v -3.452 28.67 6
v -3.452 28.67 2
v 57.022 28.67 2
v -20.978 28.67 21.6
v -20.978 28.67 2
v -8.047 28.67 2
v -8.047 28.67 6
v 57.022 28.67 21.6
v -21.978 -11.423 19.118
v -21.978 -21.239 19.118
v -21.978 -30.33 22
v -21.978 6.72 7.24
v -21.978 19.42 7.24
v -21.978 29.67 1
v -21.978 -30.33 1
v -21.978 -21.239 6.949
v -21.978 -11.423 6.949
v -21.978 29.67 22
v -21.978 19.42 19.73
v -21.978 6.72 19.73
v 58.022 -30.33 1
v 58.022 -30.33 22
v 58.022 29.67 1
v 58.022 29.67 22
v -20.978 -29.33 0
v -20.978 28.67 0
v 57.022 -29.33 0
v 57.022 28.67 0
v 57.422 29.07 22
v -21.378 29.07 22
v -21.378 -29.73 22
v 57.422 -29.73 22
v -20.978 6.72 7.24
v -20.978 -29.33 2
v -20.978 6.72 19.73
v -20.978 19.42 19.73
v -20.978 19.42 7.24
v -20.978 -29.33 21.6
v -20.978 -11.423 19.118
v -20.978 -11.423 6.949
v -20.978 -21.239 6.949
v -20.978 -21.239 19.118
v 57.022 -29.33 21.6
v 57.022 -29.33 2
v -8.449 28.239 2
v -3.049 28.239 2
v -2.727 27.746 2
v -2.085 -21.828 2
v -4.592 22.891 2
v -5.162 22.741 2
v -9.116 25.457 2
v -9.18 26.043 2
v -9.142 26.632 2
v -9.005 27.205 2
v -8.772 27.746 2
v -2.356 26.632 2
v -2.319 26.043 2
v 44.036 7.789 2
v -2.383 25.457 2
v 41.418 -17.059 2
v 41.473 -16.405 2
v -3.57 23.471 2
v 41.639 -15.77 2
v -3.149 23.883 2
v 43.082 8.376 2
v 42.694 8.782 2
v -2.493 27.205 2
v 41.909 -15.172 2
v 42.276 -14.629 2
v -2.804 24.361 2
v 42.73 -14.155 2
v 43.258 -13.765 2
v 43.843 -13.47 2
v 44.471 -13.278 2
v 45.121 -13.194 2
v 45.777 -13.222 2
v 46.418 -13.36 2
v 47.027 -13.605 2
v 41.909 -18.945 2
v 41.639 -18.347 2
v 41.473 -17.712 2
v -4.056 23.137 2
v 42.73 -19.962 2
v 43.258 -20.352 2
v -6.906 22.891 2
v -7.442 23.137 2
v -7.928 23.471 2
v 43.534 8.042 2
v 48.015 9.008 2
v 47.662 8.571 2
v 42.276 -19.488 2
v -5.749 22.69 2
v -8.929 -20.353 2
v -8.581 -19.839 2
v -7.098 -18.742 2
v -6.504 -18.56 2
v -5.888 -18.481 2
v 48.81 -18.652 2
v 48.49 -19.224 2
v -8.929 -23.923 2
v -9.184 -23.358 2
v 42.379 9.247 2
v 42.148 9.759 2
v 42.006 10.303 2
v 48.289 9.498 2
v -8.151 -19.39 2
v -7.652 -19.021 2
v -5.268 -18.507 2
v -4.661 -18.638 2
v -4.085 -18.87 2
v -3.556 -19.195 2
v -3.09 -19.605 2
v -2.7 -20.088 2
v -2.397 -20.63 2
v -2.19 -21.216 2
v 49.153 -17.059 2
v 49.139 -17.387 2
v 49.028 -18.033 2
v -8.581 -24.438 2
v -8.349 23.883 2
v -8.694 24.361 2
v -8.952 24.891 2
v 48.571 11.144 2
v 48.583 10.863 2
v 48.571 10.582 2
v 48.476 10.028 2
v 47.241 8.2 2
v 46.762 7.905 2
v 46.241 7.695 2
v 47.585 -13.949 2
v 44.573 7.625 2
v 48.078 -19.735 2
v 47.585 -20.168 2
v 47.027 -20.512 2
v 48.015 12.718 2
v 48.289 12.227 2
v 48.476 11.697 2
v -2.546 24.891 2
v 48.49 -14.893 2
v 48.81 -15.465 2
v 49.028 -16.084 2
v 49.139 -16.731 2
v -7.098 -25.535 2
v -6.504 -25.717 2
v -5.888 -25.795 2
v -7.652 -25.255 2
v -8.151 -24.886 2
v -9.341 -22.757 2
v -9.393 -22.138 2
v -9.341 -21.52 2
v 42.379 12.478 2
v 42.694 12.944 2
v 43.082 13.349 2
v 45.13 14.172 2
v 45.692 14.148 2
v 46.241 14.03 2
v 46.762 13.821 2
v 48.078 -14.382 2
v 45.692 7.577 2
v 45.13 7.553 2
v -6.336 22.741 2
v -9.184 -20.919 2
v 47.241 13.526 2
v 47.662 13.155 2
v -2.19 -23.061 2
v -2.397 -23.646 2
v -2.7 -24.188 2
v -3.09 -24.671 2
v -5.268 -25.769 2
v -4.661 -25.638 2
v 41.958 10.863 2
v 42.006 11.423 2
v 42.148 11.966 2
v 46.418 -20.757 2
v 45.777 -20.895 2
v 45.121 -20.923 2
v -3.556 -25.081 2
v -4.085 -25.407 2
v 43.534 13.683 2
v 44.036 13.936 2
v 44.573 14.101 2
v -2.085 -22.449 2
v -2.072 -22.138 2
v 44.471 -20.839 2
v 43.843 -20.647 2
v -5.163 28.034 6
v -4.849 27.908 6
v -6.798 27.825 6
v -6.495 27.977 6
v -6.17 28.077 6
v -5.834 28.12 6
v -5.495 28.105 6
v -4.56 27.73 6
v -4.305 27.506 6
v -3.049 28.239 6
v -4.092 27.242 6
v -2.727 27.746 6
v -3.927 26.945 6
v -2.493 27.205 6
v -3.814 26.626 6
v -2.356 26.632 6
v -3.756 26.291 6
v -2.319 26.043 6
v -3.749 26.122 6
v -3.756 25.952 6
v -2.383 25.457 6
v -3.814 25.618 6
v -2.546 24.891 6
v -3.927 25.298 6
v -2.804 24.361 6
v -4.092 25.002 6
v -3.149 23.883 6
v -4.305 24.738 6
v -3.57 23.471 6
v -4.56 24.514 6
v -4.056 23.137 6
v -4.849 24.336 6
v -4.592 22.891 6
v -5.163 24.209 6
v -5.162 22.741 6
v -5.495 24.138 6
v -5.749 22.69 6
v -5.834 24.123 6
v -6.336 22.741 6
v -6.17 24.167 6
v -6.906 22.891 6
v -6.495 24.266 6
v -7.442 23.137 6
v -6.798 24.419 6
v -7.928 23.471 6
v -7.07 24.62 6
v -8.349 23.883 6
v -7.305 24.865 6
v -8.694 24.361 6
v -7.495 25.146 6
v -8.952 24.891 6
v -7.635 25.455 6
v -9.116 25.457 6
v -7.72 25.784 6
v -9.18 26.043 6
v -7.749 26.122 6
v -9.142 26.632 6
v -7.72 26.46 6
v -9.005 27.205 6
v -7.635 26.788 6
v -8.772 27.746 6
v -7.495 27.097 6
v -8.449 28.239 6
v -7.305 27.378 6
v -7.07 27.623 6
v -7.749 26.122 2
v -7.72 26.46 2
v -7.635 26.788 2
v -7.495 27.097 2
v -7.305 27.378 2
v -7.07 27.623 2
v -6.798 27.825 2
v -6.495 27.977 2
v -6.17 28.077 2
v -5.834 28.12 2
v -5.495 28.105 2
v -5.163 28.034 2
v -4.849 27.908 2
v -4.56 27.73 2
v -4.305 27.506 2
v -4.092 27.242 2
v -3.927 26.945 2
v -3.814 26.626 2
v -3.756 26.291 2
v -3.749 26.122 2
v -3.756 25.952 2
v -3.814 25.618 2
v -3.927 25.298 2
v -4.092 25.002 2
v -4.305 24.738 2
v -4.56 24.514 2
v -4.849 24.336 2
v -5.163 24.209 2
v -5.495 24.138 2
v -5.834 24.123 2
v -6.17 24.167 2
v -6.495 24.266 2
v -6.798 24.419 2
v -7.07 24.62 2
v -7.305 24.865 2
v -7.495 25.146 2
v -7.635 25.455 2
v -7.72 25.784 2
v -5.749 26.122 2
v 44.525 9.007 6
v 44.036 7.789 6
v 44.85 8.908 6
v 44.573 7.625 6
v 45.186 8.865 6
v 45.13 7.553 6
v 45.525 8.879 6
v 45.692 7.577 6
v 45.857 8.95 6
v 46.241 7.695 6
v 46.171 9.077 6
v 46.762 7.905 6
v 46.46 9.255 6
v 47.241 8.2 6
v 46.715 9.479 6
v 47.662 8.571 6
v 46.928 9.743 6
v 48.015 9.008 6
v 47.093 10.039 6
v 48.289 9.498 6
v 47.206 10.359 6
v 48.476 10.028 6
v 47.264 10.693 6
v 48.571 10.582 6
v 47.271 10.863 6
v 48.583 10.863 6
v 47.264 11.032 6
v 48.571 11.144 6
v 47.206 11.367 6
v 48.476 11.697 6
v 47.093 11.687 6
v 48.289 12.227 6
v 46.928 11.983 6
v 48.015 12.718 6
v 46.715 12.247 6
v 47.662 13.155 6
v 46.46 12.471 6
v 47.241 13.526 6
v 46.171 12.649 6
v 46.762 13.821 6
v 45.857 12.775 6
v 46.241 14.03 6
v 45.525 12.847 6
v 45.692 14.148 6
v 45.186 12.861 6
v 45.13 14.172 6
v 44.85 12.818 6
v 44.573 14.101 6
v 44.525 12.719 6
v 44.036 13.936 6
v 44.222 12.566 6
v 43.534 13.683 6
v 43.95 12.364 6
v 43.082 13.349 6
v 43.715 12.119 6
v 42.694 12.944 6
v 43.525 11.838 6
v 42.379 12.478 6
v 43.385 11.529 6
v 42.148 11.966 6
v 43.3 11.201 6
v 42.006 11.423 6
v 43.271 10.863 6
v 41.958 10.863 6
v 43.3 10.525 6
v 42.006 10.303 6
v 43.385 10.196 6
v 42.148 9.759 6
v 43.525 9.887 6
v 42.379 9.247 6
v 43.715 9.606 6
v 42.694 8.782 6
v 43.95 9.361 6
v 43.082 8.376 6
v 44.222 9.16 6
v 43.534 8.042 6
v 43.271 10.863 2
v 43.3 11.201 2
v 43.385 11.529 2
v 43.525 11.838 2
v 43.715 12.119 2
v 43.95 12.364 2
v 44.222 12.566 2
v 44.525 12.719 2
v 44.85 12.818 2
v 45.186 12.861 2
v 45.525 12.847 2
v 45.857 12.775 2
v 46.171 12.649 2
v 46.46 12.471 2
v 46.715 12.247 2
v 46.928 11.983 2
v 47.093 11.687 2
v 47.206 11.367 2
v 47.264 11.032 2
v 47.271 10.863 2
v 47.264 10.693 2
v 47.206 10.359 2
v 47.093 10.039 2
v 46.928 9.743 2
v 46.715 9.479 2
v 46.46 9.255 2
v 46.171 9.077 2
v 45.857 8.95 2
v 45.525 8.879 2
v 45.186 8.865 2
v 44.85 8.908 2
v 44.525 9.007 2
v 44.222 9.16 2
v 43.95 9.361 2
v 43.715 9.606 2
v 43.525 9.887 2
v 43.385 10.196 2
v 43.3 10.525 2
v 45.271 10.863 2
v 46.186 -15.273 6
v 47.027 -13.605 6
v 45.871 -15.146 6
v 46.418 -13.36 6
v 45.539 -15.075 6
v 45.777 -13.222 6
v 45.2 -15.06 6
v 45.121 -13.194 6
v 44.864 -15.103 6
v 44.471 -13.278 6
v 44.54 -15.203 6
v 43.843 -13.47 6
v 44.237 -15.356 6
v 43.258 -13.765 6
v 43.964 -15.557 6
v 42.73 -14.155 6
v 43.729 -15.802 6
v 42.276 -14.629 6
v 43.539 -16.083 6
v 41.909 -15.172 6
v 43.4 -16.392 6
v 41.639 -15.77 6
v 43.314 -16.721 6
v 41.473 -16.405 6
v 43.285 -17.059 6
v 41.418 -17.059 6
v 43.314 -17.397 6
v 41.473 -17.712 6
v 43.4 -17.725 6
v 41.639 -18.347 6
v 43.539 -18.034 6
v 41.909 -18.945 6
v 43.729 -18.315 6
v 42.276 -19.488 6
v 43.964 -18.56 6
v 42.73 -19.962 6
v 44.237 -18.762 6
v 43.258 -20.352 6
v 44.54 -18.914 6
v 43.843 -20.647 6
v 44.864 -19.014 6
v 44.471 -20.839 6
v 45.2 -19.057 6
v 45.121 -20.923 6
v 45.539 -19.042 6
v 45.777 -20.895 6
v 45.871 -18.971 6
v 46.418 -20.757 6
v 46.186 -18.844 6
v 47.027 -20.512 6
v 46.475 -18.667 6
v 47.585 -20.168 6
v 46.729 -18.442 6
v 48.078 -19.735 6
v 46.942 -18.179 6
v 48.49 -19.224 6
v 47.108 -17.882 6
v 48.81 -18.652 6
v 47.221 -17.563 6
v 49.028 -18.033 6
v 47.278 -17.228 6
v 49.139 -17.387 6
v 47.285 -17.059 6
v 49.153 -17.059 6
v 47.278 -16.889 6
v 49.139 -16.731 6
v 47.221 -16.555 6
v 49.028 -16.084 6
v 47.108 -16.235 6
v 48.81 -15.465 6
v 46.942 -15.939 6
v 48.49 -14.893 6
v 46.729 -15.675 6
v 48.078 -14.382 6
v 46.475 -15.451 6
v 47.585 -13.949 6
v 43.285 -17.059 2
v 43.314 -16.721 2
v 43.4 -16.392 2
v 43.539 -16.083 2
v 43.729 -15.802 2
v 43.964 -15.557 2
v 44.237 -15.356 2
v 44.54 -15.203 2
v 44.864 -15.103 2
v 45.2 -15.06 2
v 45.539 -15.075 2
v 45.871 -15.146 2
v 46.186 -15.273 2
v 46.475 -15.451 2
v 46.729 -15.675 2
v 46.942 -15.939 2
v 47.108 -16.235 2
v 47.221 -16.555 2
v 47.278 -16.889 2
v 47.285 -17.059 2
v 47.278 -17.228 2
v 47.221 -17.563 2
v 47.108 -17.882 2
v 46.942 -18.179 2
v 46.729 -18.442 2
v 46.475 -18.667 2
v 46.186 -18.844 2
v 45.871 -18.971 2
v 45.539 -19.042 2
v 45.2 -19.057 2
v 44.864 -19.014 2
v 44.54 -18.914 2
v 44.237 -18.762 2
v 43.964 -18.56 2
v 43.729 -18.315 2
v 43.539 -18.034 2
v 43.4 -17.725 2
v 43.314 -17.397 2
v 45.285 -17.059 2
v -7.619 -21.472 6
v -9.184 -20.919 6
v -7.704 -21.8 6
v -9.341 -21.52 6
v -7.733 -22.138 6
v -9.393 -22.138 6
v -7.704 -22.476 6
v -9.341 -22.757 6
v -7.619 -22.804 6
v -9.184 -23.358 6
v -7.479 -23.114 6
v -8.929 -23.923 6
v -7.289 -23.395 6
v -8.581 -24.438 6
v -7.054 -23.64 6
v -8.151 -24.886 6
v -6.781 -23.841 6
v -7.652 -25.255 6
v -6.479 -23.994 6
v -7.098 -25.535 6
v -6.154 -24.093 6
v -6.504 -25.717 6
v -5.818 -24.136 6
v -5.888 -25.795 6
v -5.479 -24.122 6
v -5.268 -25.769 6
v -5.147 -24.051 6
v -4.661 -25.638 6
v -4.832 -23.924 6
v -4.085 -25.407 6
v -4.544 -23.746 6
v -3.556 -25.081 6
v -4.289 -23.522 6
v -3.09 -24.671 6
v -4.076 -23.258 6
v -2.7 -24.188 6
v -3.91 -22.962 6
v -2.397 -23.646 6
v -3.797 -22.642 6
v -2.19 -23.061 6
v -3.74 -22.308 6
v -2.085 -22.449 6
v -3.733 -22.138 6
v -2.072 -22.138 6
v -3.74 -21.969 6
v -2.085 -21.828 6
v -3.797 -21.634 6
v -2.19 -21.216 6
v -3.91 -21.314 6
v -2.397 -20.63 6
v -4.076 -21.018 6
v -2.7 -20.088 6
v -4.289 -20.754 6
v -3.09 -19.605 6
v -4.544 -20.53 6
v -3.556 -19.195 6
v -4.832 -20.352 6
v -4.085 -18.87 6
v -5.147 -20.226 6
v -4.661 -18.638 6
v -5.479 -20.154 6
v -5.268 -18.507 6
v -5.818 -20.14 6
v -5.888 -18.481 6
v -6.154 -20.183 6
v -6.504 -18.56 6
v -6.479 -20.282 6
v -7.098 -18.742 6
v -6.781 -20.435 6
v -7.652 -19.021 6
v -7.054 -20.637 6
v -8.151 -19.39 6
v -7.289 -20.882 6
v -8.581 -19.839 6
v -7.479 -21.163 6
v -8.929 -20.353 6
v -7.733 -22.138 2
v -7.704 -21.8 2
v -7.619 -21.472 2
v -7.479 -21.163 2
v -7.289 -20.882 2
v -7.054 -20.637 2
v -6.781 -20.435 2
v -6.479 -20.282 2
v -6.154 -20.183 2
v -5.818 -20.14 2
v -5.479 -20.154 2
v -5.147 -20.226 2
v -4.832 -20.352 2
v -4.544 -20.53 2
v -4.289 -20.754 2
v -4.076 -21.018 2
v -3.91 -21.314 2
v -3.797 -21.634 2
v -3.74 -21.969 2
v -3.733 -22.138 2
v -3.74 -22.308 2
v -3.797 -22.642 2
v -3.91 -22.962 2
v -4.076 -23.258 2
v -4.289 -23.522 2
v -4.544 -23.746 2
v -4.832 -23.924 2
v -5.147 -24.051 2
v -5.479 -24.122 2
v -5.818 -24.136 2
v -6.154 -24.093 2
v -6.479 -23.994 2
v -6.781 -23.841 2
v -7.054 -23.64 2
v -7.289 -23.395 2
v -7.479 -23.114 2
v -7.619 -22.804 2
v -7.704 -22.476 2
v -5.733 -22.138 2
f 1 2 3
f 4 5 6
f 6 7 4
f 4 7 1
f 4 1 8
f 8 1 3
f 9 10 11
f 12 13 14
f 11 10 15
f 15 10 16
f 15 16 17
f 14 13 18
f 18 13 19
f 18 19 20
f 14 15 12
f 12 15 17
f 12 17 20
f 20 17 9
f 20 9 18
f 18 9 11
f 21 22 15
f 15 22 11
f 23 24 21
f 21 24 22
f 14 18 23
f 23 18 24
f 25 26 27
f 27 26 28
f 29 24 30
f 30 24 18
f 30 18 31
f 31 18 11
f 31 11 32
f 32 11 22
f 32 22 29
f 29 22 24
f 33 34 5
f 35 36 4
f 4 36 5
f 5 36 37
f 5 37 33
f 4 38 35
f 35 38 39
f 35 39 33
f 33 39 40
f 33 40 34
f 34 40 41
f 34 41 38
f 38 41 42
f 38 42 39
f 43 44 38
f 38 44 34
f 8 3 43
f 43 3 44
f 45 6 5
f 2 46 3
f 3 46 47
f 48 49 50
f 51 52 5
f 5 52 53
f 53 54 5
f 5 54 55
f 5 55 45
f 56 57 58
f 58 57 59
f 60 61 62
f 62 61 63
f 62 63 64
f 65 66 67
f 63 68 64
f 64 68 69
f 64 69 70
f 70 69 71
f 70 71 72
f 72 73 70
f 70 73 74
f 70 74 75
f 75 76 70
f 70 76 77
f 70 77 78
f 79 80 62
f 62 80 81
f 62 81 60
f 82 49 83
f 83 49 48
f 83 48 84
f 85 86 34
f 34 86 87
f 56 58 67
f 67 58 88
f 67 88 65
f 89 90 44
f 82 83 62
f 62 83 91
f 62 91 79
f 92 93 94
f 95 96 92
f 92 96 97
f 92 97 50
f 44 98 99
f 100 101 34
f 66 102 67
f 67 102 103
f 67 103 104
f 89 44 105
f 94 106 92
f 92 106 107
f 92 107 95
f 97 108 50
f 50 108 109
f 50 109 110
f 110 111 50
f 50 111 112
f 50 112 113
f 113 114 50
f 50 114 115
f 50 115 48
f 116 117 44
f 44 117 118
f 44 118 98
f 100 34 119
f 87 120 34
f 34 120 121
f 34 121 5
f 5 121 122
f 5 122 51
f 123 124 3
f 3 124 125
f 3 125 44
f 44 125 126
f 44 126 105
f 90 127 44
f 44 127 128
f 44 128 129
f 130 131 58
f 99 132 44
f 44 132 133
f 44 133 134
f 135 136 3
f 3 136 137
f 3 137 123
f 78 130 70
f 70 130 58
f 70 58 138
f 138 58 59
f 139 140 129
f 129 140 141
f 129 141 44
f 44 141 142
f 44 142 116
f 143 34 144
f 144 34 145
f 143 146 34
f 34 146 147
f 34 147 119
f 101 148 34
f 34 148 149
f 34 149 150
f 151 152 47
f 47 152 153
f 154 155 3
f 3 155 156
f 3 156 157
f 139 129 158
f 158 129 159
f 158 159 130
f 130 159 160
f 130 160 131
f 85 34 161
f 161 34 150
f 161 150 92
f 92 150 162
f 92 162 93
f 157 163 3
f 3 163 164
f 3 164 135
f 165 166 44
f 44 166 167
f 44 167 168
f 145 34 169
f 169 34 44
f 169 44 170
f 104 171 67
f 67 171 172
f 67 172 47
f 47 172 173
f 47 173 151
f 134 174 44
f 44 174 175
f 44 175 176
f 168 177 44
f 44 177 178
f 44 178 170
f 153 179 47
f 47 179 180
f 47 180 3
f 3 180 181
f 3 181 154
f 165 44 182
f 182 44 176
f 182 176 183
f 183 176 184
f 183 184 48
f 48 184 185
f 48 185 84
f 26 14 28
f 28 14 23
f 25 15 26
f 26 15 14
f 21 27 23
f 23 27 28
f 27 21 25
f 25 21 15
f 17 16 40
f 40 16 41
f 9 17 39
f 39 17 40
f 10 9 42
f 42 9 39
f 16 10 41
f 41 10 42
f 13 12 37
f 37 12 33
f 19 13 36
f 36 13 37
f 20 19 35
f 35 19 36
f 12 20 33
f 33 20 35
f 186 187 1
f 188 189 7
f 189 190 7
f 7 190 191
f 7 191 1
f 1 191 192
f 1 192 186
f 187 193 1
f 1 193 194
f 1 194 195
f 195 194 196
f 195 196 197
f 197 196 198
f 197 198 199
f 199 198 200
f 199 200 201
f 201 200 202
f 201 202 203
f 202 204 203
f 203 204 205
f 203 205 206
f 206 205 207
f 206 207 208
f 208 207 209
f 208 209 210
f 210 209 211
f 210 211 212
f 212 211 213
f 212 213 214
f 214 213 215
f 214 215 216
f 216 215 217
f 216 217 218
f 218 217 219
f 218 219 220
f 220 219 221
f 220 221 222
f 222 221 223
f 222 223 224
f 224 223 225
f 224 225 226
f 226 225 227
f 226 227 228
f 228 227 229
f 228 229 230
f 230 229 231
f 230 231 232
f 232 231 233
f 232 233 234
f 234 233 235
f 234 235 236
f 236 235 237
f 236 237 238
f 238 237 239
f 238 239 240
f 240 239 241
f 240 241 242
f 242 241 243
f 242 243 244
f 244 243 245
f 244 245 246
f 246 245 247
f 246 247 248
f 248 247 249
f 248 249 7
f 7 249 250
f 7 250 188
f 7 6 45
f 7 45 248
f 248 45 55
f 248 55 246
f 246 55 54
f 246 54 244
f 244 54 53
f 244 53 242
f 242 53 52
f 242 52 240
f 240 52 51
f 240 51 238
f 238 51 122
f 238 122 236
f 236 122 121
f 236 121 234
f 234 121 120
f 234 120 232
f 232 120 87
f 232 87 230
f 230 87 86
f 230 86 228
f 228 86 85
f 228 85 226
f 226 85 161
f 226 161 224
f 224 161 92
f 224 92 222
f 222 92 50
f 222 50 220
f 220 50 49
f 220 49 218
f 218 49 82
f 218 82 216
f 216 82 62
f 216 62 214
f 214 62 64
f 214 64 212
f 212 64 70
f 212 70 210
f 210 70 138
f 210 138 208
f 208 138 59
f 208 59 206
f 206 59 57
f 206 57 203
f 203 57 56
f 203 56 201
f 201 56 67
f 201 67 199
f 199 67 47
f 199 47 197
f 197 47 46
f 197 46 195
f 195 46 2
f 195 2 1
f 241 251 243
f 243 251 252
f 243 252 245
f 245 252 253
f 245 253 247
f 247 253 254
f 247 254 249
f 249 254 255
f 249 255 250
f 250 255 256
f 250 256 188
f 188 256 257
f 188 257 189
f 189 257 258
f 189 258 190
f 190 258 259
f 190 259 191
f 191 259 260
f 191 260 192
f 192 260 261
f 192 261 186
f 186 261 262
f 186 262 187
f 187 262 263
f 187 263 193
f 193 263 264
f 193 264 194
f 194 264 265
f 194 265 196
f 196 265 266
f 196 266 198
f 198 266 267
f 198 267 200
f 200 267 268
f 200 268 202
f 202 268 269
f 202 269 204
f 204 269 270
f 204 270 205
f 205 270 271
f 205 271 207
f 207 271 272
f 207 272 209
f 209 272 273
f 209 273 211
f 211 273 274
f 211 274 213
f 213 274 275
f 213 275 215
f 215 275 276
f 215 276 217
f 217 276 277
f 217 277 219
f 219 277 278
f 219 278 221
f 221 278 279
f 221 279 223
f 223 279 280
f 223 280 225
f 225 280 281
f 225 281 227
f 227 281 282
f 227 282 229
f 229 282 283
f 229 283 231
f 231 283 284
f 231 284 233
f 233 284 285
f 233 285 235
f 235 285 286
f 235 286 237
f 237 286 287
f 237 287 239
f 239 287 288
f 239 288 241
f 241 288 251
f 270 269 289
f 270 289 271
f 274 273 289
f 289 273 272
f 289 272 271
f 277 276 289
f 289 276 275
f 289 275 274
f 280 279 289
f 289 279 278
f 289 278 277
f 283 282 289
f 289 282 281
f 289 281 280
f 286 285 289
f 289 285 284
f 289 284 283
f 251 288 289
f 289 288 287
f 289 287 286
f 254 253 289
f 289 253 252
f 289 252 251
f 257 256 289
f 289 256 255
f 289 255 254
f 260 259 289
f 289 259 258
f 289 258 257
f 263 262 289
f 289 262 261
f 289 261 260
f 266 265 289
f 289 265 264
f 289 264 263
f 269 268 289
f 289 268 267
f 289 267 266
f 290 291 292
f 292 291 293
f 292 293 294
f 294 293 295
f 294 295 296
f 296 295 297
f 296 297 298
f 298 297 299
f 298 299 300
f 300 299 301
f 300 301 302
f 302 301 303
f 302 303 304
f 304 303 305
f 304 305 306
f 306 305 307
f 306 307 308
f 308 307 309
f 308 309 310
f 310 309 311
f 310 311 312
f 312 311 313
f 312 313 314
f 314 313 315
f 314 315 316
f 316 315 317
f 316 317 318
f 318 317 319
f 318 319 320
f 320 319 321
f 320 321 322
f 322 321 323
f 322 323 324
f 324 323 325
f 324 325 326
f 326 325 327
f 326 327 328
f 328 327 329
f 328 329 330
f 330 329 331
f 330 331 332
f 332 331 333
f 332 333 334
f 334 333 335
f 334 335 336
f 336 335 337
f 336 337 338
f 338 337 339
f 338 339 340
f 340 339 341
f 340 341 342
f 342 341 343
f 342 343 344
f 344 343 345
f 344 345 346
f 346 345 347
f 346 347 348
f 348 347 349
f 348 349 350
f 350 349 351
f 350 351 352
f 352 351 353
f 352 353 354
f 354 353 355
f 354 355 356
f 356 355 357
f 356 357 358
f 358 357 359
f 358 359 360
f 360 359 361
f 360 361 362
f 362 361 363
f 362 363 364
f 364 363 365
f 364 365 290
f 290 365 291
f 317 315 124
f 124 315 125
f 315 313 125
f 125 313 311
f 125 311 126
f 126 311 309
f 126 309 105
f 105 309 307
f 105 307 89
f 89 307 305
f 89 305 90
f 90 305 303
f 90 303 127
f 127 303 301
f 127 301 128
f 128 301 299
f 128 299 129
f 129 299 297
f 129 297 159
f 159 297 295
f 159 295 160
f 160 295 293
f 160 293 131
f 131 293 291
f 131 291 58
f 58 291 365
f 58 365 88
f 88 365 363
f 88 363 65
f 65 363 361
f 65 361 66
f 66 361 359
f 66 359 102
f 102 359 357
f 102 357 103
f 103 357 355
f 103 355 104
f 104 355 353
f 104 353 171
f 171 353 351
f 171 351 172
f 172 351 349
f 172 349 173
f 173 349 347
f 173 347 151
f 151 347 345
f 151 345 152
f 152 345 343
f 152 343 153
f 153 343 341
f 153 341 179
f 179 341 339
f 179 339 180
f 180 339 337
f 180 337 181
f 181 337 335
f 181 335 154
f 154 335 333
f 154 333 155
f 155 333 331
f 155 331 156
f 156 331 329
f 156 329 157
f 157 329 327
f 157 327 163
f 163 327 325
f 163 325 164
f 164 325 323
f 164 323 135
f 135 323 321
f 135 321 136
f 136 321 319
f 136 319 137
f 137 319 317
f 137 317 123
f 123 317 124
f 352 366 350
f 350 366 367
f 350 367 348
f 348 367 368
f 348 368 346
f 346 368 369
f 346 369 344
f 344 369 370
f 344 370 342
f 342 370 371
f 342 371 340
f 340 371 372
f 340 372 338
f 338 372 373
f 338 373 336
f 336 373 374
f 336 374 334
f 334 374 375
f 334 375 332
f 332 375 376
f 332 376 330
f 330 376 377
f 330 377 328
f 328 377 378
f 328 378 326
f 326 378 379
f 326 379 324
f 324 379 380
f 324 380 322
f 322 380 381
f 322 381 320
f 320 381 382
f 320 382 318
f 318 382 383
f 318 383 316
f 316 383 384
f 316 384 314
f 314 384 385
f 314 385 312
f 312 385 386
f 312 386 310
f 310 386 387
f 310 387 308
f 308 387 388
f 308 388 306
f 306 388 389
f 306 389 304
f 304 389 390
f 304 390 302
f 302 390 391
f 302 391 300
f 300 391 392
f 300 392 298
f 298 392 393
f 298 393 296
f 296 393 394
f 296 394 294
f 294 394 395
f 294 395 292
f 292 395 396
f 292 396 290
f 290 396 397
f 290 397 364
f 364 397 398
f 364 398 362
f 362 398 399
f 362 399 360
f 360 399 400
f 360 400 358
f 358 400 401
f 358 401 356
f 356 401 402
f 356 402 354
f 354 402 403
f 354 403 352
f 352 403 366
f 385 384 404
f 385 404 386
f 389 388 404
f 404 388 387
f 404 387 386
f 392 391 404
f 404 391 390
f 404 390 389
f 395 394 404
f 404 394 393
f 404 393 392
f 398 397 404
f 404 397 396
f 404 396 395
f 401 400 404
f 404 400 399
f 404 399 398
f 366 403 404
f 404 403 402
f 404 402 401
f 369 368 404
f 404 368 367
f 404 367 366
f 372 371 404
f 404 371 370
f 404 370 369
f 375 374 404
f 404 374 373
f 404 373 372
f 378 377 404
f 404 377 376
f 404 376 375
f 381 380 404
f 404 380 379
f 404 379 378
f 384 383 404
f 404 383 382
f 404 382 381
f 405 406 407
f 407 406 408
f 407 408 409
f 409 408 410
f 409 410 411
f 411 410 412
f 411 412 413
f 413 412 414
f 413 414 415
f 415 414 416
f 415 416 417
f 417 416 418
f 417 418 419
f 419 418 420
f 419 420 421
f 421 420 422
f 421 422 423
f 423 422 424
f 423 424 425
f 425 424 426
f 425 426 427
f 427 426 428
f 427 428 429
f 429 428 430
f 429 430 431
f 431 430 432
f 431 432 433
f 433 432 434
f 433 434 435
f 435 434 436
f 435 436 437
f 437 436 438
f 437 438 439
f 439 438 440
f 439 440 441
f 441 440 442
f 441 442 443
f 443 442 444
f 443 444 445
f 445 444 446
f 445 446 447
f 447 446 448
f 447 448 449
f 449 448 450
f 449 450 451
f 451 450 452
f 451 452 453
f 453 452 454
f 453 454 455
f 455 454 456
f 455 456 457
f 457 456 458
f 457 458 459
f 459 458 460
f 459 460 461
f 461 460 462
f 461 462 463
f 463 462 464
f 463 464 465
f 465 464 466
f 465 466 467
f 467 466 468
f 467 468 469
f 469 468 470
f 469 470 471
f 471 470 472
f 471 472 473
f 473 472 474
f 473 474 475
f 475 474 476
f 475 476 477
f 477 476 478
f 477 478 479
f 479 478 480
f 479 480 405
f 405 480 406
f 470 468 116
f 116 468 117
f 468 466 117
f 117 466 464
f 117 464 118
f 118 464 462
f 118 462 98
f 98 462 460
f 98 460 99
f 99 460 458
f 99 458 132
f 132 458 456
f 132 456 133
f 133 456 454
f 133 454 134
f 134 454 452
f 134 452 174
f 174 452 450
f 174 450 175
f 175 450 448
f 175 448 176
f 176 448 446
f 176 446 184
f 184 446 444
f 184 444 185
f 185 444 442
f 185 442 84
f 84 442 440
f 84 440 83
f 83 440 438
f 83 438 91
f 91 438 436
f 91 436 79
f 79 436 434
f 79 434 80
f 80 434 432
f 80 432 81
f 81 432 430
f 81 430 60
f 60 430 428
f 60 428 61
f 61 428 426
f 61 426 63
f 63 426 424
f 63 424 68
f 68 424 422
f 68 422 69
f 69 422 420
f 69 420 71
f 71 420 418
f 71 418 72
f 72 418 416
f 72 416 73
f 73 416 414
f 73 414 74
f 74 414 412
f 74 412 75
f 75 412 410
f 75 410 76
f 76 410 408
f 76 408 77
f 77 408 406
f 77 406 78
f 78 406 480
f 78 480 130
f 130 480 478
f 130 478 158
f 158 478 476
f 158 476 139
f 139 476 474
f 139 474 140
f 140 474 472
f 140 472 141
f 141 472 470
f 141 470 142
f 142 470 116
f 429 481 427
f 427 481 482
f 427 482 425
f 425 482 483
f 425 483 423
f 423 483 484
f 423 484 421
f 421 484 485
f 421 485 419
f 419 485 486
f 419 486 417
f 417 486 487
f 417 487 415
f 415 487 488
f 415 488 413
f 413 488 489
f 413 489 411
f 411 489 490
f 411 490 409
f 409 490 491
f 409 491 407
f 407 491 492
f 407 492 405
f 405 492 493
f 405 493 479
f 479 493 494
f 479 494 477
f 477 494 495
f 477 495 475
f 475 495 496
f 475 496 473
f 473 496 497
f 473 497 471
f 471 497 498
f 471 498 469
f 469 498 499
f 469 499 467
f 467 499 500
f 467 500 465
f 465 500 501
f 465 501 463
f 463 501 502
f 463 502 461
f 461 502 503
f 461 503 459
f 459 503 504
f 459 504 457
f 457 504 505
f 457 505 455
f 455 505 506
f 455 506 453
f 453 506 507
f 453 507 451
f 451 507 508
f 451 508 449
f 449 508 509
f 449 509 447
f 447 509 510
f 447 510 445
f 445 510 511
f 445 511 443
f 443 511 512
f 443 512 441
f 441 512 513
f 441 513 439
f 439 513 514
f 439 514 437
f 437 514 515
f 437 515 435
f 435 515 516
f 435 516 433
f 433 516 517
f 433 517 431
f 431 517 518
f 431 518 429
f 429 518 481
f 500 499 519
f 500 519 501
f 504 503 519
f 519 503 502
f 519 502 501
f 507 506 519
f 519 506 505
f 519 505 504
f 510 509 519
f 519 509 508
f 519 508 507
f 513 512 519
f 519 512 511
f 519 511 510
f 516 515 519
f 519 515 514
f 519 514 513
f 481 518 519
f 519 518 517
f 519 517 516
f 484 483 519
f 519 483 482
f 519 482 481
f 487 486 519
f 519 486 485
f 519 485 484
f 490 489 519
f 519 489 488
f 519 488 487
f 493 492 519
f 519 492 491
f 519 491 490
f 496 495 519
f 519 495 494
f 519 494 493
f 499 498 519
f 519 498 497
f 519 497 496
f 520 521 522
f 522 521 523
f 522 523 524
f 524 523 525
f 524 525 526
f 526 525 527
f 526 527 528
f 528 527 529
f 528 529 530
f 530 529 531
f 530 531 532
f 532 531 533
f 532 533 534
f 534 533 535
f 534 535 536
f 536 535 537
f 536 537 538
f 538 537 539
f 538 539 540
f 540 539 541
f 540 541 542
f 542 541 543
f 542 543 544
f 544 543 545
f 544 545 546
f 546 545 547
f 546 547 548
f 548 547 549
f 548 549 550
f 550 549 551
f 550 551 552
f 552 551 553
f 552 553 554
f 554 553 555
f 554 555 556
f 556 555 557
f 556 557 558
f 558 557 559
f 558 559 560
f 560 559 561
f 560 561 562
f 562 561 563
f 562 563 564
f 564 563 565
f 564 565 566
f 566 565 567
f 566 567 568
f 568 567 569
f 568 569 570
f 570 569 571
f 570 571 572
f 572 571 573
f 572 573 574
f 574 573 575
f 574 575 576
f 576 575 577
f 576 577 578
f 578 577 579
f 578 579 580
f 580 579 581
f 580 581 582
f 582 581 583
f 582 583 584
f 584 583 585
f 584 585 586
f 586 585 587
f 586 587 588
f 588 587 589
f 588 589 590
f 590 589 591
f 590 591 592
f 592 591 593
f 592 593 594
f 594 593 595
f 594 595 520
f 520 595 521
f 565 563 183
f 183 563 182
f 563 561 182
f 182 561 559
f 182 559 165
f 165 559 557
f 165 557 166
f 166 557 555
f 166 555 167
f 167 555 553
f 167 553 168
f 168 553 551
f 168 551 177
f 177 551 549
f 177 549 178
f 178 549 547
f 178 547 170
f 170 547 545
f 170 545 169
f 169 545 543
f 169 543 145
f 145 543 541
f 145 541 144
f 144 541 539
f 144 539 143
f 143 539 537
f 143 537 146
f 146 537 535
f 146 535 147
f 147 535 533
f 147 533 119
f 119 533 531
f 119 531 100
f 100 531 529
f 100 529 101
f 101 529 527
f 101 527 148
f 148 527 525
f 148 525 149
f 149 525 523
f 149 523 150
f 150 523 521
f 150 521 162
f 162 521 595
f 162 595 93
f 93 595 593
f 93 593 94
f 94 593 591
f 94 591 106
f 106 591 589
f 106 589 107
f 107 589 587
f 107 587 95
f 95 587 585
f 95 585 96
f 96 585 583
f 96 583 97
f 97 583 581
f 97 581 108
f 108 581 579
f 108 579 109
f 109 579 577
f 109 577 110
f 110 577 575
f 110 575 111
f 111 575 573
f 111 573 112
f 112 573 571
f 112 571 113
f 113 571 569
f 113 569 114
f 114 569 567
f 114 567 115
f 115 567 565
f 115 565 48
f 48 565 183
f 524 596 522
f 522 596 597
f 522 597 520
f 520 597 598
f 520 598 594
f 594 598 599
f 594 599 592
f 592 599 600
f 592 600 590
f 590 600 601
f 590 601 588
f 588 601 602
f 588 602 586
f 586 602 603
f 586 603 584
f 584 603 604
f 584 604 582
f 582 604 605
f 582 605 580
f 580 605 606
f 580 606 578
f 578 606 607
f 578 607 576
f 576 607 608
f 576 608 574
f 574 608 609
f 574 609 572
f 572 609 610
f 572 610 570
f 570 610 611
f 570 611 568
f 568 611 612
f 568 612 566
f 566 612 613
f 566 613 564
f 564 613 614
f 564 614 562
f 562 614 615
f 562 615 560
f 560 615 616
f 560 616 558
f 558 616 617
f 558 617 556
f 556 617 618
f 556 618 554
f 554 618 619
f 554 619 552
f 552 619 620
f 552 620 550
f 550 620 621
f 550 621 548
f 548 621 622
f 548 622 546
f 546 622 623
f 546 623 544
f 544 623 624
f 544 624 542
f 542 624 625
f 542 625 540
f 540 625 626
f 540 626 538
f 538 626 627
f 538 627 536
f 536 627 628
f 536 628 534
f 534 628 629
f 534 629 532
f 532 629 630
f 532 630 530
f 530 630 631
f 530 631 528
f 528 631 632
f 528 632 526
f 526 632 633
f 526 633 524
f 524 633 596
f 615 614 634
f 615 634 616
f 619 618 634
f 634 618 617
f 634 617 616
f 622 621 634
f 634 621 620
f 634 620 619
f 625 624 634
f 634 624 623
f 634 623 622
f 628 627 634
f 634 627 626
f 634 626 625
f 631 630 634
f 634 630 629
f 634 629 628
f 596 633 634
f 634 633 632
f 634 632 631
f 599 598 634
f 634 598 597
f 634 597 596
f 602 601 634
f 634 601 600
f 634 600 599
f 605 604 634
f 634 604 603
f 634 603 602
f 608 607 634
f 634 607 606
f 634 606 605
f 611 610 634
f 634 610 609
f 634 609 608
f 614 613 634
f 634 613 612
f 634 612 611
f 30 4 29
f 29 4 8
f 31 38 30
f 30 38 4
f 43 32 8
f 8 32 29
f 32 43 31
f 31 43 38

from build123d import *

# Parameters (mm, degrees)
SKETCH_1_W          = 80
SKETCH_1_H          = 60
EXTRUDE_1_DEPTH     = 2
SKETCH_2_W          = 80
SKETCH_2_H          = 60
SKETCH_2_W_2        = 78
SKETCH_2_H_2        = 58
EXTRUDE_2_DEPTH     = 20
CHAMFER_1_SIZE      = 1
SKETCH_3_W          = 12.489594438
SKETCH_3_H          = 12.7
SKETCH_3_W_2        = 12.168468818
SKETCH_3_H_2        = 9.816130436
CUT_EXTRUDE_1_DEPTH = 10
SKETCH_4_R          = 3.431381937
SKETCH_4_R_2        = 2
SKETCH_4_R_3        = 3.312453099
SKETCH_4_R_4        = 3.867665241
SKETCH_4_R_5        = 3.660588401
EXTRUDE_4_DEPTH     = 4
CHAMFER_2_SIZE      = 0.4


with BuildPart() as part:
    # Эскиз1 → Бобышка-Вытянуть1 (new body)
    with BuildSketch(Plane.XY):
        with Locations((18.021978022, -0.32967033)):
            Rectangle(SKETCH_1_W, SKETCH_1_H)
    extrude(amount=EXTRUDE_1_DEPTH)

    # Эскиз2 → Бобышка-Вытянуть2 (add)
    with BuildSketch(Plane.XY.offset(2)):
        with Locations((18.021978022, -0.32967033)):
            Rectangle(SKETCH_2_W, SKETCH_2_H)
        with Locations((18.021978022, -0.32967033)):
            Rectangle(SKETCH_2_W_2, SKETCH_2_H_2, mode=Mode.SUBTRACT)
    extrude(amount=EXTRUDE_2_DEPTH)

    # Фаска1
    chamfer_1_edges = [part.edges().sort_by_distance(p)[0] for p in [
        (18.021978022, 29.67032967, 0),
        (58.021978022, -0.32967033, 0),
        (18.021978022, -30.32967033, 0),
        (-21.978021978, -0.32967033, 0),
    ]]
    chamfer(chamfer_1_edges, length=CHAMFER_1_SIZE)

    # Эскиз3 → Вырез-Вытянуть1 (cut)
    with BuildSketch(Plane.ZY.offset(21.978021978)):
        with Locations((13.484797219, 13.07032967)):
            Rectangle(SKETCH_3_W, SKETCH_3_H)
        with Locations((13.033283453, -16.331339337)):
            Rectangle(SKETCH_3_W_2, SKETCH_3_H_2)
    extrude(amount=-CUT_EXTRUDE_1_DEPTH, mode=Mode.SUBTRACT)

    # Эскиз4 → Бобышка-Вытянуть4 (add)
    # profile 1 of 4: a face of its own
    with BuildSketch(Plane.XY.offset(2)):
        with Locations((-5.749056018, 26.121666888)):
            Circle(SKETCH_4_R)
        with Locations((-5.749056018, 26.121666888)):
            Circle(SKETCH_4_R_2, mode=Mode.SUBTRACT)
    # profile 2 of 4: a face of its own
    with BuildSketch(Plane.XY.offset(2)):
        with Locations((45.270920547, 10.86273616)):
            Circle(SKETCH_4_R_3)
        with Locations((45.270920547, 10.86273616)):
            Circle(SKETCH_4_R_2, mode=Mode.SUBTRACT)
    # profile 3 of 4: a face of its own
    with BuildSketch(Plane.XY.offset(2)):
        with Locations((45.285382916, -17.058588577)):
            Circle(SKETCH_4_R_4)
        with Locations((45.285382916, -17.058588577)):
            Circle(SKETCH_4_R_2, mode=Mode.SUBTRACT)
    # profile 4 of 4: a face of its own
    with BuildSketch(Plane.XY.offset(2)):
        with Locations((-5.732841378, -22.138175863)):
            Circle(SKETCH_4_R_5)
        with Locations((-5.732841378, -22.138175863)):
            Circle(SKETCH_4_R_2, mode=Mode.SUBTRACT)
    extrude(amount=EXTRUDE_4_DEPTH)

    # Фаска2
    chamfer_2_edges = [part.edges().sort_by_distance(p)[0] for p in [
        (18.021978022, 28.67032967, 22),
        (-20.978021978, -0.32967033, 22),
        (18.021978022, -29.32967033, 22),
        (57.021978022, -0.32967033, 22),
    ]]
    chamfer(chamfer_2_edges, length=CHAMFER_2_SIZE)


solid = part.part
